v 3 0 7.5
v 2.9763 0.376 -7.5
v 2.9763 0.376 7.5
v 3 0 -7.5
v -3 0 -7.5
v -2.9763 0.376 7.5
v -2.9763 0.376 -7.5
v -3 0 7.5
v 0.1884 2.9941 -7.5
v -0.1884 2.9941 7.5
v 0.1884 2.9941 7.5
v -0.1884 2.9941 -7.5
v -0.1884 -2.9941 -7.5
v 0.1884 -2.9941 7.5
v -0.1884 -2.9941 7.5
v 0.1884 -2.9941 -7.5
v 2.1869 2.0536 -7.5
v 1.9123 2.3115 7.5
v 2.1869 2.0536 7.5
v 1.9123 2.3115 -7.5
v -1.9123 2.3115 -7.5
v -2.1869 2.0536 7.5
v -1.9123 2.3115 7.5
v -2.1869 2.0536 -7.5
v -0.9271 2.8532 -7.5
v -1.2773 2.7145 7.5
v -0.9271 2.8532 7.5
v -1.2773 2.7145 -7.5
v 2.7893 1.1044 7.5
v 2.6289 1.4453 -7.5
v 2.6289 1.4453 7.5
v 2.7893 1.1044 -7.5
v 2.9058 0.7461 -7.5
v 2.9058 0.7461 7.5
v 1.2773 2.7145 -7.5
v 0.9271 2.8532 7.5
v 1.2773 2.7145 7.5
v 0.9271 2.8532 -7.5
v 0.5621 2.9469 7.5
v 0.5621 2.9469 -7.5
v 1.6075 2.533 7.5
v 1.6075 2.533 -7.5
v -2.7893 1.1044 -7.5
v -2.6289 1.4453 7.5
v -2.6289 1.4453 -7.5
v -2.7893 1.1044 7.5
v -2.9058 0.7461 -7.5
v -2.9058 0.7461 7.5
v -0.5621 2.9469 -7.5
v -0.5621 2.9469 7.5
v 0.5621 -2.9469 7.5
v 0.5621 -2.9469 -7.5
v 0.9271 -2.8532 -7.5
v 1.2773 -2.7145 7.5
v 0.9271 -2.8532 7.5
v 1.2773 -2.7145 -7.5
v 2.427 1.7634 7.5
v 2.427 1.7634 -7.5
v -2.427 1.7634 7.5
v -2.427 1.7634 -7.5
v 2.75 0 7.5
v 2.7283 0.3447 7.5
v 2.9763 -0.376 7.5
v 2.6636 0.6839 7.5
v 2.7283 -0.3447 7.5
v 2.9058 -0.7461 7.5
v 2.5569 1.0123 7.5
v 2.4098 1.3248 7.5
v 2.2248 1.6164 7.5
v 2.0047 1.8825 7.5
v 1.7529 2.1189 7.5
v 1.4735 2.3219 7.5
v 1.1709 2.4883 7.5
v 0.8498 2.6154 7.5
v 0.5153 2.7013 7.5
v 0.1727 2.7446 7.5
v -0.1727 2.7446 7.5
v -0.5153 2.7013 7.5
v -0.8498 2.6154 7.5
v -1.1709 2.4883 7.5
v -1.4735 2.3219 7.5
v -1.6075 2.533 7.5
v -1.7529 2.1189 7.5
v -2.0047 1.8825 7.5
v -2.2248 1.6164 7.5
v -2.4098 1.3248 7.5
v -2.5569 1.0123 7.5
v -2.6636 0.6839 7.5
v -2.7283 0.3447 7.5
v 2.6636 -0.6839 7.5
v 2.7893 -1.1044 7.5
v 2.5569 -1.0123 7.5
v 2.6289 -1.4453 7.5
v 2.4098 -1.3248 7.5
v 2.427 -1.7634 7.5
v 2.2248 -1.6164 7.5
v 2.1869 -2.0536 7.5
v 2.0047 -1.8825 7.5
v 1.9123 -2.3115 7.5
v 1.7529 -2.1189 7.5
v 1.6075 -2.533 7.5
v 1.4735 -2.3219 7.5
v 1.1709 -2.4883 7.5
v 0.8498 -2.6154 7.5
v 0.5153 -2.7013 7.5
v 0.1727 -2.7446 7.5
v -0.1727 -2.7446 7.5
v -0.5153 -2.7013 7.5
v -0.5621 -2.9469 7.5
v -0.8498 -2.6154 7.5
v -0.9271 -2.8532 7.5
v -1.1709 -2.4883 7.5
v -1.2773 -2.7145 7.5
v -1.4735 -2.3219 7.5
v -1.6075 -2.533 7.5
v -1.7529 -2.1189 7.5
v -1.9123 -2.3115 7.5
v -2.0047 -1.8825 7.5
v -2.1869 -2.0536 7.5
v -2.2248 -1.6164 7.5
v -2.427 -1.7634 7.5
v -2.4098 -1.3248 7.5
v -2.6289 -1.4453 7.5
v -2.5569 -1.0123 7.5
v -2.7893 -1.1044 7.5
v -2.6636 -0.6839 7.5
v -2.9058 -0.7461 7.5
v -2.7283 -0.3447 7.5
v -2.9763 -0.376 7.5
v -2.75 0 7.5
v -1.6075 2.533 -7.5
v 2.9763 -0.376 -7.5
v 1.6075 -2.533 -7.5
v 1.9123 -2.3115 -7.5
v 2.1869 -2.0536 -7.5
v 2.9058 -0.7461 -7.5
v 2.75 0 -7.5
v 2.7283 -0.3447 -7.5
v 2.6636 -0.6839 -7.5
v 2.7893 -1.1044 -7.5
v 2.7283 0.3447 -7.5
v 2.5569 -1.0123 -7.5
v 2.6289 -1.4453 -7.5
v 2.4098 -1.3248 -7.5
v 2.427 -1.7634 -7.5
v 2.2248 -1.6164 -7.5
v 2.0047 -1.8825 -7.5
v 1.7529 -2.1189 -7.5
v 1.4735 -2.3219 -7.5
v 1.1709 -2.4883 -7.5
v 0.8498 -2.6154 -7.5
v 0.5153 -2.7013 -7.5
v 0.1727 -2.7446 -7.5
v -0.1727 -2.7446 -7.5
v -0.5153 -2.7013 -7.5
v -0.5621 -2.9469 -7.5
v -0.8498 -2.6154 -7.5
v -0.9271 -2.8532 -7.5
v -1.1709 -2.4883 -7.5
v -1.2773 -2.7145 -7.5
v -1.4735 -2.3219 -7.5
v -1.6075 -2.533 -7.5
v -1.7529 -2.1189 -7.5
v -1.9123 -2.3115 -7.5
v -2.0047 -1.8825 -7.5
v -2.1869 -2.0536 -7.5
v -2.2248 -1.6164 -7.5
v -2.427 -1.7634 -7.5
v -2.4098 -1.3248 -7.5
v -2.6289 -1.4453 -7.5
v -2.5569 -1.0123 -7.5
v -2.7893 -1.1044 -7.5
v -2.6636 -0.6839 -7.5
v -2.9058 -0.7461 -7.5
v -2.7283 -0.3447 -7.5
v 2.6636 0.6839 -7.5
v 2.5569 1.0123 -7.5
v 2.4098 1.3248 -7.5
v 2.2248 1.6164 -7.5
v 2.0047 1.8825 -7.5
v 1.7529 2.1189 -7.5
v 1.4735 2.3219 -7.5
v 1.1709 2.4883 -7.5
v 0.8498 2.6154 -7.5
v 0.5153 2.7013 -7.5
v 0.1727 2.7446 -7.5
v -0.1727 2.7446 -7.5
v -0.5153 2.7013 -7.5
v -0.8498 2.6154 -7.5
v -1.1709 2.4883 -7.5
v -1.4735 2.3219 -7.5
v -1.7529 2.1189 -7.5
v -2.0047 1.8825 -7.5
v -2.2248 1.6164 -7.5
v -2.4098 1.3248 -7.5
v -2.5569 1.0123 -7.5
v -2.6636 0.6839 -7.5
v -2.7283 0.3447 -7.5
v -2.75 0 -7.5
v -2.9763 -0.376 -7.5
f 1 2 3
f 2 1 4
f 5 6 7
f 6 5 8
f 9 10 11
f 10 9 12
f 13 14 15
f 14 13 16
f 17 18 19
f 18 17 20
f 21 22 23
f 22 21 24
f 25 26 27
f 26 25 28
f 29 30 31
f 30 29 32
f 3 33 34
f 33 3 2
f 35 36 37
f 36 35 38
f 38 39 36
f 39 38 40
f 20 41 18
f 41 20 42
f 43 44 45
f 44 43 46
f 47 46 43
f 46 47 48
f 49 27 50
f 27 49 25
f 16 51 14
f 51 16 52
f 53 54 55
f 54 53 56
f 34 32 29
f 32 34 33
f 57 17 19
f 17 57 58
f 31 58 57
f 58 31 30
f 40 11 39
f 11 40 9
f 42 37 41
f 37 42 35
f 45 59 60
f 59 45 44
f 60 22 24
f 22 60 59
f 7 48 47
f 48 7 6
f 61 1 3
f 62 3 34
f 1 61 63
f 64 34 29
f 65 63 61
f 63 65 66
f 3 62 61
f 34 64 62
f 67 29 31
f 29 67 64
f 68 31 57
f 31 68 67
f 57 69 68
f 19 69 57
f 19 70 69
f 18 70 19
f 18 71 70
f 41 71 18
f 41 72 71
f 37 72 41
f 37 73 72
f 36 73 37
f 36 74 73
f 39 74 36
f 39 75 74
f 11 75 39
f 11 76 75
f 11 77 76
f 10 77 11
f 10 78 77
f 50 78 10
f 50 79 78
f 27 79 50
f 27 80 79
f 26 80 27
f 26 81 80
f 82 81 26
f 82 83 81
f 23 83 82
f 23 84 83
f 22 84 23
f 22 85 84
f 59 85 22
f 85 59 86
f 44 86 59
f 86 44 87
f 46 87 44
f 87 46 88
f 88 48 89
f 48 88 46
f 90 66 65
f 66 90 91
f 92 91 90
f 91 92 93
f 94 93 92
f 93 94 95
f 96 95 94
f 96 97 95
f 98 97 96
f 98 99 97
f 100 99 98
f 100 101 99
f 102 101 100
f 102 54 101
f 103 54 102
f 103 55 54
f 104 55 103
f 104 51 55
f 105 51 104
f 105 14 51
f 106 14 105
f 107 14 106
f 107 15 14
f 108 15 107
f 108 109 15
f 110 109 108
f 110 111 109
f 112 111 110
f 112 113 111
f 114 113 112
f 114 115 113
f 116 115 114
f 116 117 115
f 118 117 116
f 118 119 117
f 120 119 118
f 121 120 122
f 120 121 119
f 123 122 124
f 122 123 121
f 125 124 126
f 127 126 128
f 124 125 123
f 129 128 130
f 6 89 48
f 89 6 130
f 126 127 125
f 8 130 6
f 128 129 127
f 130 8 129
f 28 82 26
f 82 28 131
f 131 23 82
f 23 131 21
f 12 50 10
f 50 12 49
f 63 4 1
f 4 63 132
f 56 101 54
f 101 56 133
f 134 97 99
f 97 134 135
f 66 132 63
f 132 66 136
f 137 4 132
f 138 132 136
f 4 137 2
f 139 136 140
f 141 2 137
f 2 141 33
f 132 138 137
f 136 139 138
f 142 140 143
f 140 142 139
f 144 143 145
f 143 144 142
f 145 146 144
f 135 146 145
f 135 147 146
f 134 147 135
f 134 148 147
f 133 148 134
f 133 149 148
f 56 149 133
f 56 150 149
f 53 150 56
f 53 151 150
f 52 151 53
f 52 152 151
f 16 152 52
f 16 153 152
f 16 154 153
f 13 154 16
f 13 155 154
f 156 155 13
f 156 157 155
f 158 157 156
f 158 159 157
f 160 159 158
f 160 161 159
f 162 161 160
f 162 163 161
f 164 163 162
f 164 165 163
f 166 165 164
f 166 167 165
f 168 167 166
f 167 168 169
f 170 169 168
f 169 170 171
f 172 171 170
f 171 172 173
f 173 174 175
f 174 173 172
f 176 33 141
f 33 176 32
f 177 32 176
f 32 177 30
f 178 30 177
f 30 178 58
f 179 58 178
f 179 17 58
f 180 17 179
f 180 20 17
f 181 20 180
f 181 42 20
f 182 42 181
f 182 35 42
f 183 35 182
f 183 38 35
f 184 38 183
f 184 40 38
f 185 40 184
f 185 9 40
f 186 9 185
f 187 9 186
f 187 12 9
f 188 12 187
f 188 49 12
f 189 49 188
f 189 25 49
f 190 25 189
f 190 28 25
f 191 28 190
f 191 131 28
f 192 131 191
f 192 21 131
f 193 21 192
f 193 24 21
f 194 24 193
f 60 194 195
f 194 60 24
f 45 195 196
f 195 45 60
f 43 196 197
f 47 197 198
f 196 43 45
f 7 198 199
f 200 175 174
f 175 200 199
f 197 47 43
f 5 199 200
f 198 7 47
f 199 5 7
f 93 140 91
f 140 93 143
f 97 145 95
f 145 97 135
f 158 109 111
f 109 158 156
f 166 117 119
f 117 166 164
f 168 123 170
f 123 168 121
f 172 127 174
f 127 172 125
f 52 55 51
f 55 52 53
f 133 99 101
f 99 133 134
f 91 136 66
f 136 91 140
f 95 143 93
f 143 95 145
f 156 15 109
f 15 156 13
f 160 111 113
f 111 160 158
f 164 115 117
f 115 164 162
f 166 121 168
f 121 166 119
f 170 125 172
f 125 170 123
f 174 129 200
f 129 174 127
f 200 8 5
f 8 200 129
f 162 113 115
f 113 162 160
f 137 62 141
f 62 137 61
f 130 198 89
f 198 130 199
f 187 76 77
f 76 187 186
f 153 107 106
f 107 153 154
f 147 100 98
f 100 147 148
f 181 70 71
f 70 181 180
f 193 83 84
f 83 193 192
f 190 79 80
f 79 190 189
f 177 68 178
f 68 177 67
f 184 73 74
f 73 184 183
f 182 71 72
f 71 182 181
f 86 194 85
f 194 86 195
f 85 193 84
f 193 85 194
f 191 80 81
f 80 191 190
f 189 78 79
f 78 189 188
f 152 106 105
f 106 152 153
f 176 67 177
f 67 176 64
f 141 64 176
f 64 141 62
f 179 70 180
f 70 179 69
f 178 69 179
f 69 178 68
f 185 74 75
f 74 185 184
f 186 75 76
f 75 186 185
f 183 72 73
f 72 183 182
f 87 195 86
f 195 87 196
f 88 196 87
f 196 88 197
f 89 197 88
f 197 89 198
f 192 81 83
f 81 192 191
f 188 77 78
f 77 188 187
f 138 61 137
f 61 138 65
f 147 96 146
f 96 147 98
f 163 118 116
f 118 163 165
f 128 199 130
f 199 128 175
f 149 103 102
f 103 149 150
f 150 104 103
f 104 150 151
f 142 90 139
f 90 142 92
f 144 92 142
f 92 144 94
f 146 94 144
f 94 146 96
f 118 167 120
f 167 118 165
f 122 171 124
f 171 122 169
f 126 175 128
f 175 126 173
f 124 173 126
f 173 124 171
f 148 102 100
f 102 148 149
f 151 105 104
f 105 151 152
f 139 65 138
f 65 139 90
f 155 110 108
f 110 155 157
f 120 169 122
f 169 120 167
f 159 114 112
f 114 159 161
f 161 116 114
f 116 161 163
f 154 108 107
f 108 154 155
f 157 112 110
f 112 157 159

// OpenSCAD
$fn = 50;


difference() {
	union() {
		translate(v = [0, 0, -7.5000000000]) {
			cylinder(h = 15, r = 3.0000000000);
		}
	}
	union() {
		translate(v = [0, 0, -100.0000000000]) {
			cylinder(h = 200, r = 2.7500000000);
		}
	}
}
